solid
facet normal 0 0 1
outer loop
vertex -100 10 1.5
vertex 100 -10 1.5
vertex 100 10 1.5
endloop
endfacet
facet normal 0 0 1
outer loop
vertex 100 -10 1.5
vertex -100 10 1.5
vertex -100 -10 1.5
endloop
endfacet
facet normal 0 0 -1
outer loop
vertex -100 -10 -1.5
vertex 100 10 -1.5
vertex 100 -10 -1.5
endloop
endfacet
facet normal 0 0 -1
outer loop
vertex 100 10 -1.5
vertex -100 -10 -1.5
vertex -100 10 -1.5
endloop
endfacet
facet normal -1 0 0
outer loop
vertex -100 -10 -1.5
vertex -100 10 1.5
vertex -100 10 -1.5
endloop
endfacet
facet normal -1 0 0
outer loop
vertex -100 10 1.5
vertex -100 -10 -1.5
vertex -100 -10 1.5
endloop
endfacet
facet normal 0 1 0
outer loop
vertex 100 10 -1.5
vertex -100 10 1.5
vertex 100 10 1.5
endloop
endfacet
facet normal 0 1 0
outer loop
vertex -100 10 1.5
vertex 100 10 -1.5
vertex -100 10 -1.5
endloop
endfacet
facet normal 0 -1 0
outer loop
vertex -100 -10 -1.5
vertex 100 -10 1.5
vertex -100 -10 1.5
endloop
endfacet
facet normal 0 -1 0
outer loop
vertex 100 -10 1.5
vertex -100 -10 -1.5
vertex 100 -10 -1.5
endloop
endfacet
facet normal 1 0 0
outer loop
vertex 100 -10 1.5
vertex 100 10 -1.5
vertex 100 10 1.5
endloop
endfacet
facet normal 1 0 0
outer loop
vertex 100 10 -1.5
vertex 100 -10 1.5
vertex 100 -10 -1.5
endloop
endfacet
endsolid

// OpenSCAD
// Define the dimensions of the rectangular plate
plate_length = 100;  // Length of the plate
plate_width = 20;    // Width of the plate
plate_thickness = 3; // Thickness of the plate

// Function to create a rectangular plate
module rectangular_plate() {
    cube([plate_length, plate_width, plate_thickness], center = true);
}

// Assemble the individual rectangular plates
module assembly() {
    // Position each plate individually without stacking
    translate([-50, 0, 0]) rectangular_plate(); // First plate
    translate([-30, 0, 0]) rectangular_plate(); // Second plate
    translate([-10, 0, 0]) rectangular_plate(); // Third plate
    translate([10, 0, 0]) rectangular_plate();  // Fourth plate
    translate([30, 0, 0]) rectangular_plate();  // Fifth plate
    translate([50, 0, 0]) rectangular_plate();  // Sixth plate
}

// Render the assembly
assembly();
